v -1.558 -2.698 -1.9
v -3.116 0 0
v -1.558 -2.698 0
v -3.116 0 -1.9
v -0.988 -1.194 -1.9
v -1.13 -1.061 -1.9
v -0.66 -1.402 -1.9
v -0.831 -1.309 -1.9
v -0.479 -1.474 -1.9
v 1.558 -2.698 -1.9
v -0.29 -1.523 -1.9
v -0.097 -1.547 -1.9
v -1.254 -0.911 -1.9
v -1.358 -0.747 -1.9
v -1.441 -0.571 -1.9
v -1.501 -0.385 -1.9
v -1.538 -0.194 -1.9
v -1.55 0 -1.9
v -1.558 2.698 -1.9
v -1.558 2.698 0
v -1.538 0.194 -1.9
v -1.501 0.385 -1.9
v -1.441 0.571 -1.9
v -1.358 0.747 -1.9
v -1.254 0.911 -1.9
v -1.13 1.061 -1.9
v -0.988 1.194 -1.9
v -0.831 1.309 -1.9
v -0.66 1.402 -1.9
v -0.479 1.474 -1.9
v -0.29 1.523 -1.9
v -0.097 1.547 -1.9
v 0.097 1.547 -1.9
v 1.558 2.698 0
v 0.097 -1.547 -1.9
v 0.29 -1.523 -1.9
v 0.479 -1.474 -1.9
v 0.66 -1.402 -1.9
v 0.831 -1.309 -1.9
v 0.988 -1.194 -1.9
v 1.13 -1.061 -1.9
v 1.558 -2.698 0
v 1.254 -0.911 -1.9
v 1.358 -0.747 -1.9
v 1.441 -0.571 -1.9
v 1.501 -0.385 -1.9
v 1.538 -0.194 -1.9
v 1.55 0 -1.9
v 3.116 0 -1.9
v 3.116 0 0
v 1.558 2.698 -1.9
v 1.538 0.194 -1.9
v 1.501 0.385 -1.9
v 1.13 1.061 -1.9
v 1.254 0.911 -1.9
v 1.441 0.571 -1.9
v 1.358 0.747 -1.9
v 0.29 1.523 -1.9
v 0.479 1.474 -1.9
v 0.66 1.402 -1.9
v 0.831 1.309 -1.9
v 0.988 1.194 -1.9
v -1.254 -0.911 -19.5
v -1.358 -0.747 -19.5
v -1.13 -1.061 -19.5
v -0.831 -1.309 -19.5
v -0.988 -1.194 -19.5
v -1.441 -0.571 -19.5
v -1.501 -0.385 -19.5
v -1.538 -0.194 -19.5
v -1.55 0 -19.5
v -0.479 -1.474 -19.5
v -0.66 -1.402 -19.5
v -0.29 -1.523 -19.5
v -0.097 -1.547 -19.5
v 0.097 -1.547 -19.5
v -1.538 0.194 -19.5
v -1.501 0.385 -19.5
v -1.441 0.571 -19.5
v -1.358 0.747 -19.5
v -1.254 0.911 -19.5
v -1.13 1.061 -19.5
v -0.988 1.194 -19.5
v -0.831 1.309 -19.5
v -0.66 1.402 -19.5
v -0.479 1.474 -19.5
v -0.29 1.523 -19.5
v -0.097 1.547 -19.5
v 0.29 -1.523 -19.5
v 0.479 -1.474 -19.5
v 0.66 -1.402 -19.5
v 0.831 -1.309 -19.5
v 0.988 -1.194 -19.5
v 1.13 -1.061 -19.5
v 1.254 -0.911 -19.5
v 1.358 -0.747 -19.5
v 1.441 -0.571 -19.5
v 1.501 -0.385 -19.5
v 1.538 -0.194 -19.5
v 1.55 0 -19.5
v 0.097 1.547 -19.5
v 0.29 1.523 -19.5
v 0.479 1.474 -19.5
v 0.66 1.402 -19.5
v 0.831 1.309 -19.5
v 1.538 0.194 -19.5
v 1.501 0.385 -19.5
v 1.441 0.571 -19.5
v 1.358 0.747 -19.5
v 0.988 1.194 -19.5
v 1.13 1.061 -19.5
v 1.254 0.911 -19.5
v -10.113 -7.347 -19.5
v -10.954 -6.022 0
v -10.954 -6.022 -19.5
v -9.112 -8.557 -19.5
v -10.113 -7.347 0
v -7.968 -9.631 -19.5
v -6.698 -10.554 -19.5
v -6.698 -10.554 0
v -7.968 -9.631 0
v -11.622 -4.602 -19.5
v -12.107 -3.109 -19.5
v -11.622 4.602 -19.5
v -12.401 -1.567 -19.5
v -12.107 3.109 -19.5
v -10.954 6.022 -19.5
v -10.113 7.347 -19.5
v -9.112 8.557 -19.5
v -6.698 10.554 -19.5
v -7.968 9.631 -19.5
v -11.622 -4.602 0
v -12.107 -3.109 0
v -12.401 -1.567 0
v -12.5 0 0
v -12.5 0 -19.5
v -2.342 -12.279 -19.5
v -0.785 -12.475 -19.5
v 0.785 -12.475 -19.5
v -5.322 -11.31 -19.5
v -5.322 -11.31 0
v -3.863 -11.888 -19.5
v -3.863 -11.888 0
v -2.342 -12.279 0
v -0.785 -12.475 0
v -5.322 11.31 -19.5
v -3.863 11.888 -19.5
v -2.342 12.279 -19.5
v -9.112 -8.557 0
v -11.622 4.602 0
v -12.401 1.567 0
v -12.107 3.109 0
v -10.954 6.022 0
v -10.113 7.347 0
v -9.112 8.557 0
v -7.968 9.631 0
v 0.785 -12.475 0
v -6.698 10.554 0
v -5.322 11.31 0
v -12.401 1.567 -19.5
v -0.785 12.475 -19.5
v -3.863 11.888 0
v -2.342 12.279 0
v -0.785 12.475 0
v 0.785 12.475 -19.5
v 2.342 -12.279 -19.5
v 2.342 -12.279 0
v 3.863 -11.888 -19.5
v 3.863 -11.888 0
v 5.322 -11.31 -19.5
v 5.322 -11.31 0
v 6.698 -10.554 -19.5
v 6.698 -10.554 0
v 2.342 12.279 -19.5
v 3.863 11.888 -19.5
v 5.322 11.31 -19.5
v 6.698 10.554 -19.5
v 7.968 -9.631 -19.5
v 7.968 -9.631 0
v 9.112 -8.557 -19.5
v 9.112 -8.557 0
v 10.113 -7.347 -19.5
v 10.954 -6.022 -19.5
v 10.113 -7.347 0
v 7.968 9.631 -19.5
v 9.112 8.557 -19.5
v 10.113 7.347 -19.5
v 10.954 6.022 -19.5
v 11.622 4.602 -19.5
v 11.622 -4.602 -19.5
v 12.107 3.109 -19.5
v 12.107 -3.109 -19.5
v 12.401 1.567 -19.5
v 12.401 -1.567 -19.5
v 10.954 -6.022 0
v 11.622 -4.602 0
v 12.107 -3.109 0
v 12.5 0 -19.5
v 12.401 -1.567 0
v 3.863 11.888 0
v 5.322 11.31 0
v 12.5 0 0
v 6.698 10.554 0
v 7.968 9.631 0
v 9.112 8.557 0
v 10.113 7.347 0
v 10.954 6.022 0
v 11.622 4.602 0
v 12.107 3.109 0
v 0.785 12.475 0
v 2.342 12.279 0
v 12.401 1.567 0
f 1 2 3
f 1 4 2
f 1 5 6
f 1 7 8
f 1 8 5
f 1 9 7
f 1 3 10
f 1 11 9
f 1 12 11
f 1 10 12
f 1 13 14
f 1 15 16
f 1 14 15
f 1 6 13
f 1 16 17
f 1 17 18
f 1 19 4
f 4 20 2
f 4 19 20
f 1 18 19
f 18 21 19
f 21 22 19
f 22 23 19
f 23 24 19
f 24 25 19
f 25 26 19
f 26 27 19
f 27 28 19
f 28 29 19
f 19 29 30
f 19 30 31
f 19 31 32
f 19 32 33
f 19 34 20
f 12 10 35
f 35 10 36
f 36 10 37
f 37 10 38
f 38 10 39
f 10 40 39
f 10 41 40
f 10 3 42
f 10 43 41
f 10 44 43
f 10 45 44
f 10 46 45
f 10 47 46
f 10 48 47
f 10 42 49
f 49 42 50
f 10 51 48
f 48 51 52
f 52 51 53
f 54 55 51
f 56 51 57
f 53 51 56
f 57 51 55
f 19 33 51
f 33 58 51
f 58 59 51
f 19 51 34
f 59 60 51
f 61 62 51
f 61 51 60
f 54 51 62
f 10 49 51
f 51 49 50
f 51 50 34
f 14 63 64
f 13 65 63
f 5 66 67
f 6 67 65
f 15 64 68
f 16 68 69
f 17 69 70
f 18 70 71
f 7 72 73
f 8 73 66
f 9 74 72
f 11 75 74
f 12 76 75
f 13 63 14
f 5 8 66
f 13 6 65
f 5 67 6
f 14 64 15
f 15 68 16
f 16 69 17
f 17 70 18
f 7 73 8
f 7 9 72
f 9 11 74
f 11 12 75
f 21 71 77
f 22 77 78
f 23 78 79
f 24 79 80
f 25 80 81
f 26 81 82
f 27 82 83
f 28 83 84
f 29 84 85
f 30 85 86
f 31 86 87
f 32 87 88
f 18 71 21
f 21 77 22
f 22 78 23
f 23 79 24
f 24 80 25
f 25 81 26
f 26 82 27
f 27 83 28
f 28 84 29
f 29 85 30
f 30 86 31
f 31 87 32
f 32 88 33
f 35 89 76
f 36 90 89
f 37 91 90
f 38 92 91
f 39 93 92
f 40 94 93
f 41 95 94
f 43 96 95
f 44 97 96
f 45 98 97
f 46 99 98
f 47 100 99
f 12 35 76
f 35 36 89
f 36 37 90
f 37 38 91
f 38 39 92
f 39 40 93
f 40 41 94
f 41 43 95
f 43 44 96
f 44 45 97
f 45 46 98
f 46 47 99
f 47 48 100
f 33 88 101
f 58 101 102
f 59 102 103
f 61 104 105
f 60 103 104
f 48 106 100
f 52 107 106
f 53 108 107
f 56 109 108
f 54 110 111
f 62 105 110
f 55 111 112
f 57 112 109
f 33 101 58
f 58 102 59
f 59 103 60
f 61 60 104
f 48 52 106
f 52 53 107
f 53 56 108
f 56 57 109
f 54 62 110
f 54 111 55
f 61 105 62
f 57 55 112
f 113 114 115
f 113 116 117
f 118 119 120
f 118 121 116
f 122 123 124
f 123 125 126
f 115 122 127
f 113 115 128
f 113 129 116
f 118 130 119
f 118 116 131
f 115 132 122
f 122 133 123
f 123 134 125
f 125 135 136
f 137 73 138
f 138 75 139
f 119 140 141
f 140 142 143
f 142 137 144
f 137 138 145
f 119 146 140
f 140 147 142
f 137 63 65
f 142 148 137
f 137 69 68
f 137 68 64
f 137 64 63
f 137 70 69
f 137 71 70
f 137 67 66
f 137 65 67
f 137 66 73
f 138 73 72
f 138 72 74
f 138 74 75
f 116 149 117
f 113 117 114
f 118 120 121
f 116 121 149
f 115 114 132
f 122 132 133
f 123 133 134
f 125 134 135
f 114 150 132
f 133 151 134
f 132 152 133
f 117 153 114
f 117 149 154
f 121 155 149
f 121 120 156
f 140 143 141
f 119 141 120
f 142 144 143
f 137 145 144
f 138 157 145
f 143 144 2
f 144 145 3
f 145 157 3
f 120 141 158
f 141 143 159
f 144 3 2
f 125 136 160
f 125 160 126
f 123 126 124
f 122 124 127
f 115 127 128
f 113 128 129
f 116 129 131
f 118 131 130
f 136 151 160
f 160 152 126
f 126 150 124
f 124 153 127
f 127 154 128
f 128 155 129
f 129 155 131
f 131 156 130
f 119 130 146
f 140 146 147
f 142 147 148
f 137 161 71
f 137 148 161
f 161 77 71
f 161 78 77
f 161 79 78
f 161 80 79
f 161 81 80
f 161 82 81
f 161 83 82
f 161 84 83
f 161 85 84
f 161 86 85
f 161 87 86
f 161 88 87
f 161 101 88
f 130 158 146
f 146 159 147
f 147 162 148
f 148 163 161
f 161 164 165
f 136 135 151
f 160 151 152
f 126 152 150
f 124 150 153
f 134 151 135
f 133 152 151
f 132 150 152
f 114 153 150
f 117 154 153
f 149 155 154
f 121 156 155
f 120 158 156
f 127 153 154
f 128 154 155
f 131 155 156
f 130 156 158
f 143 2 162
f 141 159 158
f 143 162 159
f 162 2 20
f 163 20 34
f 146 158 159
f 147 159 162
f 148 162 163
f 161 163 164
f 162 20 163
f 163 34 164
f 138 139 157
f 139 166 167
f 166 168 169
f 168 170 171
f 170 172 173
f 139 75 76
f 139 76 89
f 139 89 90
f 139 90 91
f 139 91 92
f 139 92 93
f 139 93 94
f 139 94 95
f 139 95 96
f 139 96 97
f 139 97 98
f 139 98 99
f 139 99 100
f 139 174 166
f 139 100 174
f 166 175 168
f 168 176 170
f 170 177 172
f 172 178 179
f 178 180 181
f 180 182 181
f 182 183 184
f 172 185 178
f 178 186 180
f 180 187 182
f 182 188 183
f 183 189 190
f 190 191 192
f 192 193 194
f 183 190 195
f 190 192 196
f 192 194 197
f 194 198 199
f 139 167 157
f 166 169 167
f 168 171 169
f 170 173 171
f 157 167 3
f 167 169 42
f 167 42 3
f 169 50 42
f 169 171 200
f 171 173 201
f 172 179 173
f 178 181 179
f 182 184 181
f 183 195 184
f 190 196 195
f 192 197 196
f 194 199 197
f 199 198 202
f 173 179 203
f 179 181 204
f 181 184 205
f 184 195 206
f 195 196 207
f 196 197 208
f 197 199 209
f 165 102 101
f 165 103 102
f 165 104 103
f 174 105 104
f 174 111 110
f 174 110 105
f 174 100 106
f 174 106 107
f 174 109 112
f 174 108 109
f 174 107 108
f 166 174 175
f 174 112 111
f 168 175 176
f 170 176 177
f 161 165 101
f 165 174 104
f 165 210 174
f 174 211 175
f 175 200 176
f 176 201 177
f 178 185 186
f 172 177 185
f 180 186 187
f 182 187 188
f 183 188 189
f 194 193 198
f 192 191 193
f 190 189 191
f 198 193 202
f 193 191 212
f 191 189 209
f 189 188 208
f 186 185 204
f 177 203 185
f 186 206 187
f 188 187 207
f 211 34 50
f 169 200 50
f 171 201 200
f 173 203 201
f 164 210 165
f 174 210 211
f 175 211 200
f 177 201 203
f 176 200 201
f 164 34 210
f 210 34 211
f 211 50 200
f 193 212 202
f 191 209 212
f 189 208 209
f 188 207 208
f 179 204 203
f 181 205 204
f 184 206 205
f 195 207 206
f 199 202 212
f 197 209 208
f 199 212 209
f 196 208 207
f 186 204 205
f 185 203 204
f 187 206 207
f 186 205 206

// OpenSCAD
$fn = 50;


difference() {
	union() {
		translate(v = [0, 0, -19.5000000000]) {
			cylinder(h = 19.5000000000, r = 12.5000000000);
		}
	}
	union() {
		translate(v = [0, 0, 0]) {
			rotate(a = [0, 0, 0]) {
				difference() {
					union() {
						translate(v = [0, 0, -1.9000000000]) {
							linear_extrude(height = 1.9000000000) {
								polygon(points = [[3.1158000000, 0.0000000000], [1.5579000000, 2.6983619531], [-1.5579000000, 2.6983619531], [-3.1158000000, 0.0000000000], [-1.5579000000, -2.6983619531], [1.5579000000, -2.6983619531]]);
							}
						}
					}
					union();
				}
			}
		}
		#translate(v = [0, 0, -100.0000000000]) {
			cylinder(h = 200, r = 1.5500000000);
		}
	}
}
